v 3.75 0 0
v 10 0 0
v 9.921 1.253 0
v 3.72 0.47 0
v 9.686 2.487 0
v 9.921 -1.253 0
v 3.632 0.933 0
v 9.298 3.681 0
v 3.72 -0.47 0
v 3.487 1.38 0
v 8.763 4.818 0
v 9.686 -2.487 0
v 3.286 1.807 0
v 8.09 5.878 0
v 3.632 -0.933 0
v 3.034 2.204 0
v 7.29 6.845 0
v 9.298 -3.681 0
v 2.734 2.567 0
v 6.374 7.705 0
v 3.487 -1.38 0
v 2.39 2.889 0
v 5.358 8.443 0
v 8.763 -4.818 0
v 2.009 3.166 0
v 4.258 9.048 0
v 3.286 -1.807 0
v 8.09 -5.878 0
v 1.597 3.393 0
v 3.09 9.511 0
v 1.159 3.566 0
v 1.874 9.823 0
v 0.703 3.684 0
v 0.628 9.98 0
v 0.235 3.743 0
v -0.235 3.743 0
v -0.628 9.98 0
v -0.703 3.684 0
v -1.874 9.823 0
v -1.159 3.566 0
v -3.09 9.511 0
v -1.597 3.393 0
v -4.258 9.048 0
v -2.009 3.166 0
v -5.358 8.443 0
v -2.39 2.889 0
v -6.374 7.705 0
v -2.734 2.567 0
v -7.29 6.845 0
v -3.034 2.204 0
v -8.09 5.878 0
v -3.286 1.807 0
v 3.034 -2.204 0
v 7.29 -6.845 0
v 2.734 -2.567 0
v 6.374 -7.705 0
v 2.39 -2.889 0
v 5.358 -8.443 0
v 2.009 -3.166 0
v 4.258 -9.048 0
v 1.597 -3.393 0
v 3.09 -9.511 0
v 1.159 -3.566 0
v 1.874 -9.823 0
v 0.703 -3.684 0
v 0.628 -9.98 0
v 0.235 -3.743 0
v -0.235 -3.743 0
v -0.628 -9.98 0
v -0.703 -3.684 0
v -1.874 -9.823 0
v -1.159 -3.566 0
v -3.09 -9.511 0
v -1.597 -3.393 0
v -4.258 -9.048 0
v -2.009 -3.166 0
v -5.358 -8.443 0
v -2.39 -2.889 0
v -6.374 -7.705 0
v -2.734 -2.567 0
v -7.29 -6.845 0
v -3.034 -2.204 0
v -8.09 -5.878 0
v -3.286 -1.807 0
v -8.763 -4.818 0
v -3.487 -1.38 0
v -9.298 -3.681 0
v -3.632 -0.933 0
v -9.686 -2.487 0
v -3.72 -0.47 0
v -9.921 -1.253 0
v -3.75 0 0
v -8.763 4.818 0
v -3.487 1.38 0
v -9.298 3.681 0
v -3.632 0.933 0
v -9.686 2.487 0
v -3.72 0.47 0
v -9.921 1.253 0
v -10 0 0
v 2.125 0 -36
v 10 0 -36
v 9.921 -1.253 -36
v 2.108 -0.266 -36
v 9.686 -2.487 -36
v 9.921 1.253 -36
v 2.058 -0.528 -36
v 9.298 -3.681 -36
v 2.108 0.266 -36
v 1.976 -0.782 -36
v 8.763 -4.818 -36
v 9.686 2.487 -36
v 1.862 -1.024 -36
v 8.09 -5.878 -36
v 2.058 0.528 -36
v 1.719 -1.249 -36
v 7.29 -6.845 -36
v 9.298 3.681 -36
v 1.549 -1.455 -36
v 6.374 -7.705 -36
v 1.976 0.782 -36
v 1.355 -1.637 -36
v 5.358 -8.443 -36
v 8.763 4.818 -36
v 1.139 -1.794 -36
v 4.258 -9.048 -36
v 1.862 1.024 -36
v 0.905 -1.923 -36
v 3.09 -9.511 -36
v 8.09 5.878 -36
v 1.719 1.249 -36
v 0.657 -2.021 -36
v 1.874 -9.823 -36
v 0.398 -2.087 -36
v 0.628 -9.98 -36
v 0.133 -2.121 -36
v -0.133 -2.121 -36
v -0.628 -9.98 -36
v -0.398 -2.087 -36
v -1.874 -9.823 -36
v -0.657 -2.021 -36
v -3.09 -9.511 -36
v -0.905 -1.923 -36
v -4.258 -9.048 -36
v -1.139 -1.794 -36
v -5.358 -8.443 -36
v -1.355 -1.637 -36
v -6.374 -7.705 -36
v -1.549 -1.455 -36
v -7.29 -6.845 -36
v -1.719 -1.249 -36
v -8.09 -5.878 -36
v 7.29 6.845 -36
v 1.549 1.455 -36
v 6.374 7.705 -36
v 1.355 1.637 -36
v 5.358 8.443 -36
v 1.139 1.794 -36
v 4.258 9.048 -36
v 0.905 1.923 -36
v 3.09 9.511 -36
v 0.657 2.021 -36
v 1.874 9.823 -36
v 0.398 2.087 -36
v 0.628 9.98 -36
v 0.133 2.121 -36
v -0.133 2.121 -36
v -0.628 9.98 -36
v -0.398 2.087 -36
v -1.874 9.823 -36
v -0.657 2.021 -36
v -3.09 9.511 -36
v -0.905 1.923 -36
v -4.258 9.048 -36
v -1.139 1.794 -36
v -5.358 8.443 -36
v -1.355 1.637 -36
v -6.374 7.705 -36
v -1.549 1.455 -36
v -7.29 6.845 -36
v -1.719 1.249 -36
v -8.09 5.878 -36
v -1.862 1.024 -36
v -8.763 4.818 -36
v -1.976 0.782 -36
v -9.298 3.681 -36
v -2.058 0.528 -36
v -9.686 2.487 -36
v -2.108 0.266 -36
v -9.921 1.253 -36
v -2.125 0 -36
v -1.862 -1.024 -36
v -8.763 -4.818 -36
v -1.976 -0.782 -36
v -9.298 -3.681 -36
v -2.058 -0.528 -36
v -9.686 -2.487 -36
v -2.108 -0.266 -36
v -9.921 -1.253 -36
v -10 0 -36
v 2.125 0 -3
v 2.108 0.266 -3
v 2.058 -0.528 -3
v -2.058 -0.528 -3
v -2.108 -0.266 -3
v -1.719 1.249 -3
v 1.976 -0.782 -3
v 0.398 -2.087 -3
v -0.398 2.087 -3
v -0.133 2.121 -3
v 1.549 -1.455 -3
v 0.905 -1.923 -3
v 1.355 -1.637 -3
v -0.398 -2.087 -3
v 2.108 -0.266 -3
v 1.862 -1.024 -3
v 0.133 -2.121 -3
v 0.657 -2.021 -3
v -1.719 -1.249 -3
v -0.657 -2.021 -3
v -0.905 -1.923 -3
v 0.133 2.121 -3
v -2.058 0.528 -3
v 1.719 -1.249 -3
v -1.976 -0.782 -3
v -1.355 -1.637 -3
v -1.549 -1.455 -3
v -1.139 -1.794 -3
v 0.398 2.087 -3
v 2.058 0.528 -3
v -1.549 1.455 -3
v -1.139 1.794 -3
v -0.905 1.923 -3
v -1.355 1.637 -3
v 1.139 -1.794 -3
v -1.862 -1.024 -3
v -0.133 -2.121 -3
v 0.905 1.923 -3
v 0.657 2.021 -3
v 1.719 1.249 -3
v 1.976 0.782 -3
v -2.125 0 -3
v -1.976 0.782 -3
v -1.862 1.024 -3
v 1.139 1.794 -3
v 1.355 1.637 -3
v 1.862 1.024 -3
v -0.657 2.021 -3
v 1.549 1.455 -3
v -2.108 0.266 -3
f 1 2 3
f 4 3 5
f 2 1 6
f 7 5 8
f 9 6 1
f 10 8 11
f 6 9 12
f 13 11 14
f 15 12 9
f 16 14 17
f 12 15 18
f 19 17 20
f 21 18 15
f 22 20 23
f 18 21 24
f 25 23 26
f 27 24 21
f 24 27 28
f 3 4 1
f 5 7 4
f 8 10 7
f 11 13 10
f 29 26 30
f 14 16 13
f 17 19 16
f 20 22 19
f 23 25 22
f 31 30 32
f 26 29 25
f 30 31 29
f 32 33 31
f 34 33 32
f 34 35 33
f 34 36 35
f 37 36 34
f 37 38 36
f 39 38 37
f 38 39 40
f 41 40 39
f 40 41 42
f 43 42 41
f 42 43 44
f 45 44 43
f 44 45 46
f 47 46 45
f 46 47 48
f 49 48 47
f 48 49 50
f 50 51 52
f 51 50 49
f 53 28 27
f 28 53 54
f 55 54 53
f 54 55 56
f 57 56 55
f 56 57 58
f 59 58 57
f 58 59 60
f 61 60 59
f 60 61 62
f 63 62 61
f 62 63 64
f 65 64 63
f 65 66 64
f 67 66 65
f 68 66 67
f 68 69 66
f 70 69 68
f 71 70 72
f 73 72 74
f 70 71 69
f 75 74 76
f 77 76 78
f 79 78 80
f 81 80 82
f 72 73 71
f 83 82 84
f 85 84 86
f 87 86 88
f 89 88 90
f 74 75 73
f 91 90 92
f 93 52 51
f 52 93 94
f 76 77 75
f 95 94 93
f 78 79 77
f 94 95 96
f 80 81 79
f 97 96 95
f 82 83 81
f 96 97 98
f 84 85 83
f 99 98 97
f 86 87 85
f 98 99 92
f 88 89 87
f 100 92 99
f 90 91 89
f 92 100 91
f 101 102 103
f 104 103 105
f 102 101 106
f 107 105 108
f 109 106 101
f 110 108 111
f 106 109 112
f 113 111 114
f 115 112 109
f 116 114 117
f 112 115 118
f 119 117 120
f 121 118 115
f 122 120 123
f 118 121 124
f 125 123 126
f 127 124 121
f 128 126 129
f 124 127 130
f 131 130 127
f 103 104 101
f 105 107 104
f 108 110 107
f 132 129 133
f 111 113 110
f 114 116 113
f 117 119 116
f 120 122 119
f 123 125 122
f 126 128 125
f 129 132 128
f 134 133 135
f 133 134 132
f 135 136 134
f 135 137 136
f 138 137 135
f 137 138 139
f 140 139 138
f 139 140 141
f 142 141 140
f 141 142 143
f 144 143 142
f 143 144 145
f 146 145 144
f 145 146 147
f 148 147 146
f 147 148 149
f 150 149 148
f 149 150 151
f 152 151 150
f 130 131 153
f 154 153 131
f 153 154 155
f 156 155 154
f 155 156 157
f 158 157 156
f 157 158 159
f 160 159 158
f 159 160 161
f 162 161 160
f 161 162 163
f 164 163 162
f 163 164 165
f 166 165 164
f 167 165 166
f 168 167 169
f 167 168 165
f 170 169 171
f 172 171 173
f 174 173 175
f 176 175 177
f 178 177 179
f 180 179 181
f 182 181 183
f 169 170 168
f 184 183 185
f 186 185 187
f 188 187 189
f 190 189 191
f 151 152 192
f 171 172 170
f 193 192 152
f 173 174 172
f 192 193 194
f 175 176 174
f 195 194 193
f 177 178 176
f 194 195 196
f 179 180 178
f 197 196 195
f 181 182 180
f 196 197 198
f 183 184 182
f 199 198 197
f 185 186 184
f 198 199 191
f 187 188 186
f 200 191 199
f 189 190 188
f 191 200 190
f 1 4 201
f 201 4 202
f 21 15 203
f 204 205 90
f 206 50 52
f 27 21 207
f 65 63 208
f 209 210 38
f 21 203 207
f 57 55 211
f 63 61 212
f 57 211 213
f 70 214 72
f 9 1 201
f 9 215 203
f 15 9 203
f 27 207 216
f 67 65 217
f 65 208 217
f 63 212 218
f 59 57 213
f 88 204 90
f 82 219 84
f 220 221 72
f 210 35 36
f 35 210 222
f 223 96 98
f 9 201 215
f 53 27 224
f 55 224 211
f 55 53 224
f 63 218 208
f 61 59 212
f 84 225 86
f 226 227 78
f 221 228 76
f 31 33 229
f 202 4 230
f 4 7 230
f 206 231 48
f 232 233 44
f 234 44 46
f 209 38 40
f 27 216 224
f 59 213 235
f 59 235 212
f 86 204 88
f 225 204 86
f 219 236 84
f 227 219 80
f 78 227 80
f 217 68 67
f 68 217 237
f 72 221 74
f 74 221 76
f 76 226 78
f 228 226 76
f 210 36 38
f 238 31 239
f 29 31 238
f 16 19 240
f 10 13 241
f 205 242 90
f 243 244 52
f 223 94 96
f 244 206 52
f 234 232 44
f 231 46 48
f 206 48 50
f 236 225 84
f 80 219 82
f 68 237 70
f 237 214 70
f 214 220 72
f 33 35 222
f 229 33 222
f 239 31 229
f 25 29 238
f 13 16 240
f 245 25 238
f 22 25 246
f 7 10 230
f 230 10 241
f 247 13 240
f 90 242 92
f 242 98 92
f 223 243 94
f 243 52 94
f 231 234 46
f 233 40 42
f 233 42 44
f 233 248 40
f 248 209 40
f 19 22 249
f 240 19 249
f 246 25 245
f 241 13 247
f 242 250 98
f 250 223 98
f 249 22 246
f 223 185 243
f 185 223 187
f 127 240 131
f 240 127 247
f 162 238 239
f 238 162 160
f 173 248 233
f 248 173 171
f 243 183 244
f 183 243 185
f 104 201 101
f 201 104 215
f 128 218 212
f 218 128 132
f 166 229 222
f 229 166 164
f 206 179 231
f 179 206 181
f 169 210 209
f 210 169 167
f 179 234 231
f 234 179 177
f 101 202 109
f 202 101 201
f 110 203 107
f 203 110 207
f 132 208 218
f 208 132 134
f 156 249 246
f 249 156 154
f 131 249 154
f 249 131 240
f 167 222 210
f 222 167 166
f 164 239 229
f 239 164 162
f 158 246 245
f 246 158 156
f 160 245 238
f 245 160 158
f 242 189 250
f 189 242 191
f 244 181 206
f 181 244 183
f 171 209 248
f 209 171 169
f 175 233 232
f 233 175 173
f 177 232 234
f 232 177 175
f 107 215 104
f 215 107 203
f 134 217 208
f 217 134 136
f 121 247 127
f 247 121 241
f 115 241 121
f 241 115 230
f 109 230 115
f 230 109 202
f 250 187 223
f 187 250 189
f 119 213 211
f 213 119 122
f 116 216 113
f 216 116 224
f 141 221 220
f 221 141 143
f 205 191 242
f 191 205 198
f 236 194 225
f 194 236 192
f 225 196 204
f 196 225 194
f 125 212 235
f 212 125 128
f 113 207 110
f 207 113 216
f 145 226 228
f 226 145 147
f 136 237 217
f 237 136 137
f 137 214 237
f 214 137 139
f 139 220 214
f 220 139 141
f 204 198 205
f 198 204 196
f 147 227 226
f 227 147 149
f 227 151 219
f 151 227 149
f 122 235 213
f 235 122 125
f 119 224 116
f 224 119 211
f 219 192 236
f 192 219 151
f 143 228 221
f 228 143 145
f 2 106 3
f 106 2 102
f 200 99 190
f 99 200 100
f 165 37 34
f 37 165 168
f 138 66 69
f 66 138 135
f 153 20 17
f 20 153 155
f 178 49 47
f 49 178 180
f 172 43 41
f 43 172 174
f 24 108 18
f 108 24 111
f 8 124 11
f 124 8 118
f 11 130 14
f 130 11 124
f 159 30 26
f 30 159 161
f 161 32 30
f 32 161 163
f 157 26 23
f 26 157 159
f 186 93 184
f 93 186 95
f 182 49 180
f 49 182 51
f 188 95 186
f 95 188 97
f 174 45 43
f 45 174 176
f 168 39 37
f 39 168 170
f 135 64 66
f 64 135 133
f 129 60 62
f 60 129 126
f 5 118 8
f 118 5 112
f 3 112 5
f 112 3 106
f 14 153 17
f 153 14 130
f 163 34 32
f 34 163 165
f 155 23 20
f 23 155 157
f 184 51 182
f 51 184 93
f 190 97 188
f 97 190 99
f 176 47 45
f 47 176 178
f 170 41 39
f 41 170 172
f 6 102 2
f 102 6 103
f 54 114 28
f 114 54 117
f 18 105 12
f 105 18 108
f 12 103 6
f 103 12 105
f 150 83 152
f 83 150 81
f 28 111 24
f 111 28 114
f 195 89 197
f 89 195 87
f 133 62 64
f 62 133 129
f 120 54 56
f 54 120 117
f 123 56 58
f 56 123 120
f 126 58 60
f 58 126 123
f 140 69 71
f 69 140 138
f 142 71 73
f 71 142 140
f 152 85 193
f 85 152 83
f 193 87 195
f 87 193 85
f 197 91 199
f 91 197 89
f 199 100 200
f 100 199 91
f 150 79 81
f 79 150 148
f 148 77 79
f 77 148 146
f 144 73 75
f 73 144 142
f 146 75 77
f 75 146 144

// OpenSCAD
$fn = 50;


difference() {
	union() {
		translate(v = [0, 0, -36.0000000000]) {
			cylinder(h = 36, r = 10.0000000000);
		}
		cylinder(h = 0, r = 16.0000000000);
	}
	union() {
		translate(v = [0, 0, 0]) {
			rotate(a = [0, 0, 0]) {
				difference() {
					union() {
						#translate(v = [0, 0, -36.0000000000]) {
							cylinder(h = 36, r = 2.0000000000);
						}
						#translate(v = [0, 0, -3]) {
							cylinder(h = 3, r = 10.0000000000, r1 = 2.1250000000, r2 = 3.7500000000);
						}
						#translate(v = [0, 0, -36.0000000000]) {
							cylinder(h = 36, r = 2.1250000000);
						}
						#translate(v = [0, 0, -36.0000000000]) {
							cylinder(h = 36, r = 2.0000000000);
						}
					}
					union();
				}
			}
		}
	}
}
